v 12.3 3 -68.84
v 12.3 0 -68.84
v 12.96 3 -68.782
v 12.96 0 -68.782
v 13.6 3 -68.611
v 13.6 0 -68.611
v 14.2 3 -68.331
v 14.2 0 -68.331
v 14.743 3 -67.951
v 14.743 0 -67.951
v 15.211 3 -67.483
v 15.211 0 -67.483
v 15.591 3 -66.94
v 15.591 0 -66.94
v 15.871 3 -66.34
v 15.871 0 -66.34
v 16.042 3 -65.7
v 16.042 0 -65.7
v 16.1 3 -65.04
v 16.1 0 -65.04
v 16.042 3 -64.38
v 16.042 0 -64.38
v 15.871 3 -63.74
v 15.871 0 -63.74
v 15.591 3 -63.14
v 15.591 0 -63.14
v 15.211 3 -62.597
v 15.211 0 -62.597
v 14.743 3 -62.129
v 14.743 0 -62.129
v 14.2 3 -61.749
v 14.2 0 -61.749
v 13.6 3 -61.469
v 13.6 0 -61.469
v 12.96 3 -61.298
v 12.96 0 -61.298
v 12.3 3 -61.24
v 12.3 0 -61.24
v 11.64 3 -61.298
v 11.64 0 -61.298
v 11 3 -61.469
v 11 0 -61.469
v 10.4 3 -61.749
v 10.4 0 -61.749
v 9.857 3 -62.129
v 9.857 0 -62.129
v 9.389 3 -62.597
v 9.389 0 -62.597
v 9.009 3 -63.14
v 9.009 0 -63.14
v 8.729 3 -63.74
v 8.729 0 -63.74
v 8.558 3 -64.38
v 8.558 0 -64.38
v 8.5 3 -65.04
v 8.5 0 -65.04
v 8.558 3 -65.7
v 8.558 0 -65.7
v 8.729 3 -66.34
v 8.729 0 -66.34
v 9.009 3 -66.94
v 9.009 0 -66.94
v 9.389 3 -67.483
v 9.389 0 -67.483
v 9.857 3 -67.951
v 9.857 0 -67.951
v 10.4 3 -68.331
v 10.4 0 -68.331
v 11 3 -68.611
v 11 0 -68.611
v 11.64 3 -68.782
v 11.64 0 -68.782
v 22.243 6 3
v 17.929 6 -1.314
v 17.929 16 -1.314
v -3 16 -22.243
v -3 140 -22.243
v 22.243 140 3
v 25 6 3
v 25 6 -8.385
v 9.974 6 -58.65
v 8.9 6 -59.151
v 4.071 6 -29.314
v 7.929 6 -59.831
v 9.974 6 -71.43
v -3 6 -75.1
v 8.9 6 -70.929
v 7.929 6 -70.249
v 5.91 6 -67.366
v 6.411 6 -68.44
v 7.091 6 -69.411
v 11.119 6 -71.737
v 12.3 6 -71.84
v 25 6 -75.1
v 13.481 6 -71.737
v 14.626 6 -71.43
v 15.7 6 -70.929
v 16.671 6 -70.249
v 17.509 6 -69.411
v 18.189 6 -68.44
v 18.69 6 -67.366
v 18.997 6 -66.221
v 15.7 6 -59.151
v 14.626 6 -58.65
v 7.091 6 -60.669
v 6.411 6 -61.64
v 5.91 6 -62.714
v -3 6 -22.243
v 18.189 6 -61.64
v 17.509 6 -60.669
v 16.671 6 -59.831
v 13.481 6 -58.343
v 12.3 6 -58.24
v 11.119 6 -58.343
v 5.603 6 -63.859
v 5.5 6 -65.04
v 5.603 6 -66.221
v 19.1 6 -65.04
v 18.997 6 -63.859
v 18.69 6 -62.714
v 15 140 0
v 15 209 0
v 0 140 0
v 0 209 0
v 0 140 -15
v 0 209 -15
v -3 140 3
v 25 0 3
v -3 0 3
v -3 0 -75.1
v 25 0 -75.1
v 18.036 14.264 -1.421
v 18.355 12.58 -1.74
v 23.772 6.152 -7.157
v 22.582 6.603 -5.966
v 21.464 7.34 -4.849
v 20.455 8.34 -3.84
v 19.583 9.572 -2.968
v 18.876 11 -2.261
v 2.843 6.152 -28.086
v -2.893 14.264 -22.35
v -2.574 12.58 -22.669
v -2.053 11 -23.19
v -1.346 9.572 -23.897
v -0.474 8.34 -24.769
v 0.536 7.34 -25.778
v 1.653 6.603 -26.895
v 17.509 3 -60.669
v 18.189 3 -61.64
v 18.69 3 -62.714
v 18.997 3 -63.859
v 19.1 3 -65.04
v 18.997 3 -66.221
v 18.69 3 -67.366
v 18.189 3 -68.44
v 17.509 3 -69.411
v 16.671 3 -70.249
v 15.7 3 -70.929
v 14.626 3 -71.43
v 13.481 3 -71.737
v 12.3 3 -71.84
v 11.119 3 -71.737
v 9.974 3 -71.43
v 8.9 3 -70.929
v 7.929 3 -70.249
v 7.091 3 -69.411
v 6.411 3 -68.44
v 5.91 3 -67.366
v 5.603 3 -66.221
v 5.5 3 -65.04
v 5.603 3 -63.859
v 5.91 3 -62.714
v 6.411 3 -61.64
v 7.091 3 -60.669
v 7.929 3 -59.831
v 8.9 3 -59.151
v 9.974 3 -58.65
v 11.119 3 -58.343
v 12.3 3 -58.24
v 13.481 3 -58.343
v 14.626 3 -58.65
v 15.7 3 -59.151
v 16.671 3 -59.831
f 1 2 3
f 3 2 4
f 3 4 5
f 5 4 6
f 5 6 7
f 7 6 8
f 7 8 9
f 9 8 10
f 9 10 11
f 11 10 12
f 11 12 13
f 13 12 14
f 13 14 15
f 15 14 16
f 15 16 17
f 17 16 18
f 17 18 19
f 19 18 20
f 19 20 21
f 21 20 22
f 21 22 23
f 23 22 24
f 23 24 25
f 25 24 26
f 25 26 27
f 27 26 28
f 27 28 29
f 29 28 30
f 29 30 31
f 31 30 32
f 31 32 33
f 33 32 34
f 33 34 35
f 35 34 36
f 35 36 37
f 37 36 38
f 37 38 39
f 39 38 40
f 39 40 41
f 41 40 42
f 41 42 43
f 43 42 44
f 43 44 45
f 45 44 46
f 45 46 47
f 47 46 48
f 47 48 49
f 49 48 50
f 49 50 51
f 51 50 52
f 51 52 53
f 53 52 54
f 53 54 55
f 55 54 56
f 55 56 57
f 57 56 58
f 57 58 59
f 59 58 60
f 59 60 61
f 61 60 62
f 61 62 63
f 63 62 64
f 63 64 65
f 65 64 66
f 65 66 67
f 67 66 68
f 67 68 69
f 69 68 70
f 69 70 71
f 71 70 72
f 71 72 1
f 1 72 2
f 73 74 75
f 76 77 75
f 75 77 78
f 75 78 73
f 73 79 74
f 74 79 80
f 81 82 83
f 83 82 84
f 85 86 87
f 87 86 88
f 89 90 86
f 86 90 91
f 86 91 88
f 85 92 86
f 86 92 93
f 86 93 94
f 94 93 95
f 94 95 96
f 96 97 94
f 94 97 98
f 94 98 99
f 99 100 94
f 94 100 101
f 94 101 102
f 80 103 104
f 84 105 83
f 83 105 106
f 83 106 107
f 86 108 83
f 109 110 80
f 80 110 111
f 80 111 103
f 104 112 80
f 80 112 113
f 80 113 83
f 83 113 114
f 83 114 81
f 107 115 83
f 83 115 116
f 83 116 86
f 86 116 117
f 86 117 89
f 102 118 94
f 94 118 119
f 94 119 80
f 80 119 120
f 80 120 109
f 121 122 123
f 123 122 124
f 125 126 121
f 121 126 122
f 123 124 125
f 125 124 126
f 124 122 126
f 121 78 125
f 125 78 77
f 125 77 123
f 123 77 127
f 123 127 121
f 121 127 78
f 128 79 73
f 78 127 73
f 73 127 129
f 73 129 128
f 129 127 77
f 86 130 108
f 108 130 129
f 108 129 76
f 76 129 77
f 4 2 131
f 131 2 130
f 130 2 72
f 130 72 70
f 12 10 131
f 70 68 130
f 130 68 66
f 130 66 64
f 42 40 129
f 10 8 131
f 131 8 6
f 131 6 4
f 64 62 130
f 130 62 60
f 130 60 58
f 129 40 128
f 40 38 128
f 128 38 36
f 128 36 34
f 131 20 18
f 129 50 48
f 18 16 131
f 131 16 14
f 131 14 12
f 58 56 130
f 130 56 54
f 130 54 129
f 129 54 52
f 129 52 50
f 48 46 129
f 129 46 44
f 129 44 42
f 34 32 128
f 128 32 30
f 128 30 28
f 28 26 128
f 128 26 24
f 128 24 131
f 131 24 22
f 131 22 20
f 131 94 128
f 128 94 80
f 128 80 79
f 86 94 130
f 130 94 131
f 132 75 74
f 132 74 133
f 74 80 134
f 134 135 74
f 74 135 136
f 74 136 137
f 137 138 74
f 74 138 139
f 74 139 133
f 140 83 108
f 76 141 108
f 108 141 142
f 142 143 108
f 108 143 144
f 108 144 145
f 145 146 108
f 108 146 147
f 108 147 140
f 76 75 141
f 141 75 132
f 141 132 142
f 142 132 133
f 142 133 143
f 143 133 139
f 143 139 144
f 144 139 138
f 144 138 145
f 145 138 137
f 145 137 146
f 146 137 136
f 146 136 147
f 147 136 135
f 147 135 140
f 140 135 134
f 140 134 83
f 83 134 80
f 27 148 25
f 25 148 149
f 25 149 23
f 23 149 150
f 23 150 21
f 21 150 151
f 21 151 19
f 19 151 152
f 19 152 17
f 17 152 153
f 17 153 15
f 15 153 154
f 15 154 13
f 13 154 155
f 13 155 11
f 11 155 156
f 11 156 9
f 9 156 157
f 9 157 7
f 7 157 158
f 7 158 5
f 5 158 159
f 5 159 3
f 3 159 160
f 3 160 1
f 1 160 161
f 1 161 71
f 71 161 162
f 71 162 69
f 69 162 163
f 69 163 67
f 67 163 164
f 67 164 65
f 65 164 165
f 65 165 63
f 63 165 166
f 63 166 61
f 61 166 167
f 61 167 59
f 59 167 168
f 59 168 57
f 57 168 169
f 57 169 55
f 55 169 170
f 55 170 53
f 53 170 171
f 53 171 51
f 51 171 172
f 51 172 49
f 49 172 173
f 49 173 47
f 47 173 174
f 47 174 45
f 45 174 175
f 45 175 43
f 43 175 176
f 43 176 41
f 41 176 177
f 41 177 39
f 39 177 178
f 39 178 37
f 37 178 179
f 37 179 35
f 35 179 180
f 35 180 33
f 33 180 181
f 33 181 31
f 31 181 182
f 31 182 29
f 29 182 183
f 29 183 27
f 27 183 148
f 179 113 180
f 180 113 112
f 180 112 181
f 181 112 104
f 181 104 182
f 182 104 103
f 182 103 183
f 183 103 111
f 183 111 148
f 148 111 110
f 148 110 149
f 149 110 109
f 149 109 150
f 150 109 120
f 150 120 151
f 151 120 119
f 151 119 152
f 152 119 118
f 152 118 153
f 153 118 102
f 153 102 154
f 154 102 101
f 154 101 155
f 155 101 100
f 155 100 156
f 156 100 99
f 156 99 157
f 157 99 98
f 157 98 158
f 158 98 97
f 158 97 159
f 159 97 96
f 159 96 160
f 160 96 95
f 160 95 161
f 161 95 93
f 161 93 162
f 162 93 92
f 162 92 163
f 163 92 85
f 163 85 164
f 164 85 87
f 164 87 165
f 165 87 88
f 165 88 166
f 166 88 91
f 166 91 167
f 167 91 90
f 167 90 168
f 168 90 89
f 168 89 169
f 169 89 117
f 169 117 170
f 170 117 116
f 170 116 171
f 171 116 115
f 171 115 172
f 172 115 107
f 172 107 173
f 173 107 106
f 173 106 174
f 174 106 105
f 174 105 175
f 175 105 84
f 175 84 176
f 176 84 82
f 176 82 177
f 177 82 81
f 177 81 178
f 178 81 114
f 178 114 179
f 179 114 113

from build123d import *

# Parameters (mm, degrees)
BOSS_EXTRUDE3_DEPTH = 320
SKETCH7_W           = 15
SKETCH7_H           = 111
CUT_EXTRUDE3_DEPTH  = 321.702354216
BOSS_EXTRUDE7_DEPTH = 140
SKETCH4_W           = 28
SKETCH4_H           = 78.1
SKETCH4_R           = 3.8
BOSS_EXTRUDE4_DEPTH = 6
BOSS_EXTRUDE8_DEPTH = 10
CUT_EXTRUDE4_DEPTH  = 226.646771605
SKETCH13_R          = 6.8
CUT_EXTRUDE5_DEPTH  = 3


with BuildPart() as part:
    # Sketch1 → Boss-Extrude3 (new body)
    with BuildSketch(Plane(origin=(0, 0, 0), x_dir=(1, 0, 0), z_dir=(0, 1, 0))):
        Polygon((0, 0), (0, 15), (15, 0), align=None)
    extrude(amount=BOSS_EXTRUDE3_DEPTH)

    # Sketch7 → Cut-Extrude3 (cut, through all)
    with BuildSketch(Plane.XY):
        with Locations((7.5, 264.5)):
            Rectangle(SKETCH7_W, SKETCH7_H)
    extrude(amount=-CUT_EXTRUDE3_DEPTH, mode=Mode.SUBTRACT)

    # Sketch10 → Boss-Extrude7 (add)
    with BuildSketch(Plane.XZ):
        Polygon((-3, 3), (-3, -22.242640687), (22.242640687, 3), align=None)
    extrude(amount=-BOSS_EXTRUDE7_DEPTH)

    # Sketch4 → Boss-Extrude4 (add)
    with BuildSketch(Plane.XZ):
        with Locations((11, -36.05)):
            Rectangle(SKETCH4_W, SKETCH4_H)
        with Locations(Location((12.3, -65.04, 0), (0, 0, 270))):
            Circle(SKETCH4_R, mode=Mode.SUBTRACT)
    extrude(amount=-BOSS_EXTRUDE4_DEPTH)

    # Sketch11 → Boss-Extrude8 (add)
    with BuildSketch(Plane(origin=(0, 6, 0), x_dir=(1, 0, 0), z_dir=(0, 1, 0))):
        Polygon((-3, 22.242640687), (4.071067812, 29.313708499), (19.315705646, 14.069070665), (25, 8.384776311), (17.928932188, 1.313708499), align=None)
    extrude(amount=BOSS_EXTRUDE8_DEPTH)

    # Sketch12 → Cut-Extrude4 (cut, through all)
    with BuildSketch(Plane(origin=(8.307611845, 0, 8.307611845), x_dir=(0.7071067811865472, 0, -0.7071067811865479), z_dir=(0.7071067811865479, 0, 0.7071067811865472))):
        with BuildLine():
            Line((13.606601718, 16), (23.606601718, 16))
            Line((23.606601718, 16), (23.606601718, 6))
            ThreePointArc((23.606601718, 6), (16.535533906, 8.928932188), (13.606601718, 16))
        make_face()
    extrude(amount=-CUT_EXTRUDE4_DEPTH, mode=Mode.SUBTRACT)

    # Sketch13 → Cut-Extrude5 (cut)
    with BuildSketch(Plane(origin=(0, 6, 0), x_dir=(1, 0, 0), z_dir=(0, 1, 0))):
        with Locations(Location((12.3, 65.04, 0), (0, 0, 270))):
            Circle(SKETCH13_R)
    extrude(amount=-CUT_EXTRUDE5_DEPTH, mode=Mode.SUBTRACT)


solid = part.part
